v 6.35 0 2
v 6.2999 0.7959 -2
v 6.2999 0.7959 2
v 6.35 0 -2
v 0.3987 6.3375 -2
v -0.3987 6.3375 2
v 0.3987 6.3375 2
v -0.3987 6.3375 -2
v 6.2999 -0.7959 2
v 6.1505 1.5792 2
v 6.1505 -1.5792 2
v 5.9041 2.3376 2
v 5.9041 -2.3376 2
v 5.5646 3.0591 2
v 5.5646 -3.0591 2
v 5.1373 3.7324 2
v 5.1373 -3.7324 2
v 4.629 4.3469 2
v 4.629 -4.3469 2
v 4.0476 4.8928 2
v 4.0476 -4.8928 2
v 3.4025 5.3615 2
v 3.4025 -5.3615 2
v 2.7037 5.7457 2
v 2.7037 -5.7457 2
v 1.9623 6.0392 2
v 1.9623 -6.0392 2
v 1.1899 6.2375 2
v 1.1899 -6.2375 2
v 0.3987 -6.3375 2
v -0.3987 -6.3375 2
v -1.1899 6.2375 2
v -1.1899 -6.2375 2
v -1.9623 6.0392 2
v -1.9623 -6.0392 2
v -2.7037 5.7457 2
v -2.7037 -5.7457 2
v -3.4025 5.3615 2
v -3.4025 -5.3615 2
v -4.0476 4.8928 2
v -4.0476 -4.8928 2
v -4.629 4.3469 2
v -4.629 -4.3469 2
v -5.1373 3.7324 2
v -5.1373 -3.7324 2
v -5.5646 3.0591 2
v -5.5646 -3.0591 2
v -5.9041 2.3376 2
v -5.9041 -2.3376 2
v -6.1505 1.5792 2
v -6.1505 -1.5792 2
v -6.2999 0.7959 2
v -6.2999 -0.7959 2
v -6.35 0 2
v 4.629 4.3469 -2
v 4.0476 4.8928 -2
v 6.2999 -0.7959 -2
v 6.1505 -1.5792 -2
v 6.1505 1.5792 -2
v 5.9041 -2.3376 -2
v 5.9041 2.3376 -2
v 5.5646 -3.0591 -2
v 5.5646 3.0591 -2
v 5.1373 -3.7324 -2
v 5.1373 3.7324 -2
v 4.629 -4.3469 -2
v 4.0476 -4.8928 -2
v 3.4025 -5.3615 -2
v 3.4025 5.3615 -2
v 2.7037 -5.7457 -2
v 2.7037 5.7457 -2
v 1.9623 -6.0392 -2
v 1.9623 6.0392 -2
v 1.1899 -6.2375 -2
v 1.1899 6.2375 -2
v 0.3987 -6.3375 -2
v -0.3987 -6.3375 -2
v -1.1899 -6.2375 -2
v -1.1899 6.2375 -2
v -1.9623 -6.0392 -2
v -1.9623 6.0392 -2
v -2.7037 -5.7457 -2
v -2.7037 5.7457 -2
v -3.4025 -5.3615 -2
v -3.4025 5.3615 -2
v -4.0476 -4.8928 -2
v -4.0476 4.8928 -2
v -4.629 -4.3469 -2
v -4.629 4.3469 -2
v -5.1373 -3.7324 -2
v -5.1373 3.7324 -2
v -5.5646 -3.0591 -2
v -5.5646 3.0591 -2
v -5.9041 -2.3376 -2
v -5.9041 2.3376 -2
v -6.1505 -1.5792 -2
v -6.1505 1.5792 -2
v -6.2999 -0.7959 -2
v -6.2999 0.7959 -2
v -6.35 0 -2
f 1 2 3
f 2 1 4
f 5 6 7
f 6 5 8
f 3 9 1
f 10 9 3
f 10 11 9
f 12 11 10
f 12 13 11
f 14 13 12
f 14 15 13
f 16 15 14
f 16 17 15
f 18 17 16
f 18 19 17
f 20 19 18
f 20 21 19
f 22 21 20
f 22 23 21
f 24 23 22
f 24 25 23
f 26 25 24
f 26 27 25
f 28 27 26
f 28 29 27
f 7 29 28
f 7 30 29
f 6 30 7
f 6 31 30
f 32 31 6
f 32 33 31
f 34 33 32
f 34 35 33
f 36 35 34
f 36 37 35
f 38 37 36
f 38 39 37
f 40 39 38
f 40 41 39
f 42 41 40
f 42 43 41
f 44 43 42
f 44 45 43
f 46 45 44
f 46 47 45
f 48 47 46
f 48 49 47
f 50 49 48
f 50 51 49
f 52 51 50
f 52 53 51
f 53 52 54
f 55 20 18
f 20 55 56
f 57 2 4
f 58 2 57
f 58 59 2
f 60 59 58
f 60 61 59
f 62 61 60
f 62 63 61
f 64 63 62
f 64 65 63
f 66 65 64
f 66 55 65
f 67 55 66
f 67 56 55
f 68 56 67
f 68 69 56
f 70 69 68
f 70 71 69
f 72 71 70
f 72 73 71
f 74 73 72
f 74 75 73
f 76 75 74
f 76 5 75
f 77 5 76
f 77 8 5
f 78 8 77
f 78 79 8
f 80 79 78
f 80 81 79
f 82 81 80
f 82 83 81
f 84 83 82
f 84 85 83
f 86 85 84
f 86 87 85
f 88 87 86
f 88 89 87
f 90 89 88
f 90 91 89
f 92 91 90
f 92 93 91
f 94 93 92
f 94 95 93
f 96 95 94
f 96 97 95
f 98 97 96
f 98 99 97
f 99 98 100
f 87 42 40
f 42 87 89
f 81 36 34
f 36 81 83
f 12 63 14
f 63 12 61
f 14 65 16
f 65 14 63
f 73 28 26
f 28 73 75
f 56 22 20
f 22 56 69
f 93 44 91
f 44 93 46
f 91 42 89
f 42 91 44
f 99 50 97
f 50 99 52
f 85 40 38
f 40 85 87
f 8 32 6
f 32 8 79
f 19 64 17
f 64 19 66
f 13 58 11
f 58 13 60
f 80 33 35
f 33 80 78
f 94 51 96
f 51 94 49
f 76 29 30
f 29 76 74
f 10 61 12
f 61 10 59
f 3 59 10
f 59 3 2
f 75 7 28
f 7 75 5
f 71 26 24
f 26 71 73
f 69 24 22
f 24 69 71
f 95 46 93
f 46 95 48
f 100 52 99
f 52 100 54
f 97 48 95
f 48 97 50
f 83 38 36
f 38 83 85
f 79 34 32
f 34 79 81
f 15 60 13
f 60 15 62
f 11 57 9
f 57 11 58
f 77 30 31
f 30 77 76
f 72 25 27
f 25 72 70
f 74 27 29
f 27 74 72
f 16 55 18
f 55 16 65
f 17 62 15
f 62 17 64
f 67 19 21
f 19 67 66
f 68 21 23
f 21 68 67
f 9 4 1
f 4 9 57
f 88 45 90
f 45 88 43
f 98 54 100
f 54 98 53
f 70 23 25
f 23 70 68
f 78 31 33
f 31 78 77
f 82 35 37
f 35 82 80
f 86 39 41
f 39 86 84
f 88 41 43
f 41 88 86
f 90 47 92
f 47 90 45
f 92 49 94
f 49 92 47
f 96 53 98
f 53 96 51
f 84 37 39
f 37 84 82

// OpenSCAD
$fn = 50;


difference() {
	union() {
		translate(v = [0, 0, -2.0000000000]) {
			cylinder(h = 4, r = 6.3500000000);
		}
	}
	union() {
		translate(v = [0, 0, -100.0000000000]) {
			cylinder(h = 200, r = 0);
		}
	}
}
